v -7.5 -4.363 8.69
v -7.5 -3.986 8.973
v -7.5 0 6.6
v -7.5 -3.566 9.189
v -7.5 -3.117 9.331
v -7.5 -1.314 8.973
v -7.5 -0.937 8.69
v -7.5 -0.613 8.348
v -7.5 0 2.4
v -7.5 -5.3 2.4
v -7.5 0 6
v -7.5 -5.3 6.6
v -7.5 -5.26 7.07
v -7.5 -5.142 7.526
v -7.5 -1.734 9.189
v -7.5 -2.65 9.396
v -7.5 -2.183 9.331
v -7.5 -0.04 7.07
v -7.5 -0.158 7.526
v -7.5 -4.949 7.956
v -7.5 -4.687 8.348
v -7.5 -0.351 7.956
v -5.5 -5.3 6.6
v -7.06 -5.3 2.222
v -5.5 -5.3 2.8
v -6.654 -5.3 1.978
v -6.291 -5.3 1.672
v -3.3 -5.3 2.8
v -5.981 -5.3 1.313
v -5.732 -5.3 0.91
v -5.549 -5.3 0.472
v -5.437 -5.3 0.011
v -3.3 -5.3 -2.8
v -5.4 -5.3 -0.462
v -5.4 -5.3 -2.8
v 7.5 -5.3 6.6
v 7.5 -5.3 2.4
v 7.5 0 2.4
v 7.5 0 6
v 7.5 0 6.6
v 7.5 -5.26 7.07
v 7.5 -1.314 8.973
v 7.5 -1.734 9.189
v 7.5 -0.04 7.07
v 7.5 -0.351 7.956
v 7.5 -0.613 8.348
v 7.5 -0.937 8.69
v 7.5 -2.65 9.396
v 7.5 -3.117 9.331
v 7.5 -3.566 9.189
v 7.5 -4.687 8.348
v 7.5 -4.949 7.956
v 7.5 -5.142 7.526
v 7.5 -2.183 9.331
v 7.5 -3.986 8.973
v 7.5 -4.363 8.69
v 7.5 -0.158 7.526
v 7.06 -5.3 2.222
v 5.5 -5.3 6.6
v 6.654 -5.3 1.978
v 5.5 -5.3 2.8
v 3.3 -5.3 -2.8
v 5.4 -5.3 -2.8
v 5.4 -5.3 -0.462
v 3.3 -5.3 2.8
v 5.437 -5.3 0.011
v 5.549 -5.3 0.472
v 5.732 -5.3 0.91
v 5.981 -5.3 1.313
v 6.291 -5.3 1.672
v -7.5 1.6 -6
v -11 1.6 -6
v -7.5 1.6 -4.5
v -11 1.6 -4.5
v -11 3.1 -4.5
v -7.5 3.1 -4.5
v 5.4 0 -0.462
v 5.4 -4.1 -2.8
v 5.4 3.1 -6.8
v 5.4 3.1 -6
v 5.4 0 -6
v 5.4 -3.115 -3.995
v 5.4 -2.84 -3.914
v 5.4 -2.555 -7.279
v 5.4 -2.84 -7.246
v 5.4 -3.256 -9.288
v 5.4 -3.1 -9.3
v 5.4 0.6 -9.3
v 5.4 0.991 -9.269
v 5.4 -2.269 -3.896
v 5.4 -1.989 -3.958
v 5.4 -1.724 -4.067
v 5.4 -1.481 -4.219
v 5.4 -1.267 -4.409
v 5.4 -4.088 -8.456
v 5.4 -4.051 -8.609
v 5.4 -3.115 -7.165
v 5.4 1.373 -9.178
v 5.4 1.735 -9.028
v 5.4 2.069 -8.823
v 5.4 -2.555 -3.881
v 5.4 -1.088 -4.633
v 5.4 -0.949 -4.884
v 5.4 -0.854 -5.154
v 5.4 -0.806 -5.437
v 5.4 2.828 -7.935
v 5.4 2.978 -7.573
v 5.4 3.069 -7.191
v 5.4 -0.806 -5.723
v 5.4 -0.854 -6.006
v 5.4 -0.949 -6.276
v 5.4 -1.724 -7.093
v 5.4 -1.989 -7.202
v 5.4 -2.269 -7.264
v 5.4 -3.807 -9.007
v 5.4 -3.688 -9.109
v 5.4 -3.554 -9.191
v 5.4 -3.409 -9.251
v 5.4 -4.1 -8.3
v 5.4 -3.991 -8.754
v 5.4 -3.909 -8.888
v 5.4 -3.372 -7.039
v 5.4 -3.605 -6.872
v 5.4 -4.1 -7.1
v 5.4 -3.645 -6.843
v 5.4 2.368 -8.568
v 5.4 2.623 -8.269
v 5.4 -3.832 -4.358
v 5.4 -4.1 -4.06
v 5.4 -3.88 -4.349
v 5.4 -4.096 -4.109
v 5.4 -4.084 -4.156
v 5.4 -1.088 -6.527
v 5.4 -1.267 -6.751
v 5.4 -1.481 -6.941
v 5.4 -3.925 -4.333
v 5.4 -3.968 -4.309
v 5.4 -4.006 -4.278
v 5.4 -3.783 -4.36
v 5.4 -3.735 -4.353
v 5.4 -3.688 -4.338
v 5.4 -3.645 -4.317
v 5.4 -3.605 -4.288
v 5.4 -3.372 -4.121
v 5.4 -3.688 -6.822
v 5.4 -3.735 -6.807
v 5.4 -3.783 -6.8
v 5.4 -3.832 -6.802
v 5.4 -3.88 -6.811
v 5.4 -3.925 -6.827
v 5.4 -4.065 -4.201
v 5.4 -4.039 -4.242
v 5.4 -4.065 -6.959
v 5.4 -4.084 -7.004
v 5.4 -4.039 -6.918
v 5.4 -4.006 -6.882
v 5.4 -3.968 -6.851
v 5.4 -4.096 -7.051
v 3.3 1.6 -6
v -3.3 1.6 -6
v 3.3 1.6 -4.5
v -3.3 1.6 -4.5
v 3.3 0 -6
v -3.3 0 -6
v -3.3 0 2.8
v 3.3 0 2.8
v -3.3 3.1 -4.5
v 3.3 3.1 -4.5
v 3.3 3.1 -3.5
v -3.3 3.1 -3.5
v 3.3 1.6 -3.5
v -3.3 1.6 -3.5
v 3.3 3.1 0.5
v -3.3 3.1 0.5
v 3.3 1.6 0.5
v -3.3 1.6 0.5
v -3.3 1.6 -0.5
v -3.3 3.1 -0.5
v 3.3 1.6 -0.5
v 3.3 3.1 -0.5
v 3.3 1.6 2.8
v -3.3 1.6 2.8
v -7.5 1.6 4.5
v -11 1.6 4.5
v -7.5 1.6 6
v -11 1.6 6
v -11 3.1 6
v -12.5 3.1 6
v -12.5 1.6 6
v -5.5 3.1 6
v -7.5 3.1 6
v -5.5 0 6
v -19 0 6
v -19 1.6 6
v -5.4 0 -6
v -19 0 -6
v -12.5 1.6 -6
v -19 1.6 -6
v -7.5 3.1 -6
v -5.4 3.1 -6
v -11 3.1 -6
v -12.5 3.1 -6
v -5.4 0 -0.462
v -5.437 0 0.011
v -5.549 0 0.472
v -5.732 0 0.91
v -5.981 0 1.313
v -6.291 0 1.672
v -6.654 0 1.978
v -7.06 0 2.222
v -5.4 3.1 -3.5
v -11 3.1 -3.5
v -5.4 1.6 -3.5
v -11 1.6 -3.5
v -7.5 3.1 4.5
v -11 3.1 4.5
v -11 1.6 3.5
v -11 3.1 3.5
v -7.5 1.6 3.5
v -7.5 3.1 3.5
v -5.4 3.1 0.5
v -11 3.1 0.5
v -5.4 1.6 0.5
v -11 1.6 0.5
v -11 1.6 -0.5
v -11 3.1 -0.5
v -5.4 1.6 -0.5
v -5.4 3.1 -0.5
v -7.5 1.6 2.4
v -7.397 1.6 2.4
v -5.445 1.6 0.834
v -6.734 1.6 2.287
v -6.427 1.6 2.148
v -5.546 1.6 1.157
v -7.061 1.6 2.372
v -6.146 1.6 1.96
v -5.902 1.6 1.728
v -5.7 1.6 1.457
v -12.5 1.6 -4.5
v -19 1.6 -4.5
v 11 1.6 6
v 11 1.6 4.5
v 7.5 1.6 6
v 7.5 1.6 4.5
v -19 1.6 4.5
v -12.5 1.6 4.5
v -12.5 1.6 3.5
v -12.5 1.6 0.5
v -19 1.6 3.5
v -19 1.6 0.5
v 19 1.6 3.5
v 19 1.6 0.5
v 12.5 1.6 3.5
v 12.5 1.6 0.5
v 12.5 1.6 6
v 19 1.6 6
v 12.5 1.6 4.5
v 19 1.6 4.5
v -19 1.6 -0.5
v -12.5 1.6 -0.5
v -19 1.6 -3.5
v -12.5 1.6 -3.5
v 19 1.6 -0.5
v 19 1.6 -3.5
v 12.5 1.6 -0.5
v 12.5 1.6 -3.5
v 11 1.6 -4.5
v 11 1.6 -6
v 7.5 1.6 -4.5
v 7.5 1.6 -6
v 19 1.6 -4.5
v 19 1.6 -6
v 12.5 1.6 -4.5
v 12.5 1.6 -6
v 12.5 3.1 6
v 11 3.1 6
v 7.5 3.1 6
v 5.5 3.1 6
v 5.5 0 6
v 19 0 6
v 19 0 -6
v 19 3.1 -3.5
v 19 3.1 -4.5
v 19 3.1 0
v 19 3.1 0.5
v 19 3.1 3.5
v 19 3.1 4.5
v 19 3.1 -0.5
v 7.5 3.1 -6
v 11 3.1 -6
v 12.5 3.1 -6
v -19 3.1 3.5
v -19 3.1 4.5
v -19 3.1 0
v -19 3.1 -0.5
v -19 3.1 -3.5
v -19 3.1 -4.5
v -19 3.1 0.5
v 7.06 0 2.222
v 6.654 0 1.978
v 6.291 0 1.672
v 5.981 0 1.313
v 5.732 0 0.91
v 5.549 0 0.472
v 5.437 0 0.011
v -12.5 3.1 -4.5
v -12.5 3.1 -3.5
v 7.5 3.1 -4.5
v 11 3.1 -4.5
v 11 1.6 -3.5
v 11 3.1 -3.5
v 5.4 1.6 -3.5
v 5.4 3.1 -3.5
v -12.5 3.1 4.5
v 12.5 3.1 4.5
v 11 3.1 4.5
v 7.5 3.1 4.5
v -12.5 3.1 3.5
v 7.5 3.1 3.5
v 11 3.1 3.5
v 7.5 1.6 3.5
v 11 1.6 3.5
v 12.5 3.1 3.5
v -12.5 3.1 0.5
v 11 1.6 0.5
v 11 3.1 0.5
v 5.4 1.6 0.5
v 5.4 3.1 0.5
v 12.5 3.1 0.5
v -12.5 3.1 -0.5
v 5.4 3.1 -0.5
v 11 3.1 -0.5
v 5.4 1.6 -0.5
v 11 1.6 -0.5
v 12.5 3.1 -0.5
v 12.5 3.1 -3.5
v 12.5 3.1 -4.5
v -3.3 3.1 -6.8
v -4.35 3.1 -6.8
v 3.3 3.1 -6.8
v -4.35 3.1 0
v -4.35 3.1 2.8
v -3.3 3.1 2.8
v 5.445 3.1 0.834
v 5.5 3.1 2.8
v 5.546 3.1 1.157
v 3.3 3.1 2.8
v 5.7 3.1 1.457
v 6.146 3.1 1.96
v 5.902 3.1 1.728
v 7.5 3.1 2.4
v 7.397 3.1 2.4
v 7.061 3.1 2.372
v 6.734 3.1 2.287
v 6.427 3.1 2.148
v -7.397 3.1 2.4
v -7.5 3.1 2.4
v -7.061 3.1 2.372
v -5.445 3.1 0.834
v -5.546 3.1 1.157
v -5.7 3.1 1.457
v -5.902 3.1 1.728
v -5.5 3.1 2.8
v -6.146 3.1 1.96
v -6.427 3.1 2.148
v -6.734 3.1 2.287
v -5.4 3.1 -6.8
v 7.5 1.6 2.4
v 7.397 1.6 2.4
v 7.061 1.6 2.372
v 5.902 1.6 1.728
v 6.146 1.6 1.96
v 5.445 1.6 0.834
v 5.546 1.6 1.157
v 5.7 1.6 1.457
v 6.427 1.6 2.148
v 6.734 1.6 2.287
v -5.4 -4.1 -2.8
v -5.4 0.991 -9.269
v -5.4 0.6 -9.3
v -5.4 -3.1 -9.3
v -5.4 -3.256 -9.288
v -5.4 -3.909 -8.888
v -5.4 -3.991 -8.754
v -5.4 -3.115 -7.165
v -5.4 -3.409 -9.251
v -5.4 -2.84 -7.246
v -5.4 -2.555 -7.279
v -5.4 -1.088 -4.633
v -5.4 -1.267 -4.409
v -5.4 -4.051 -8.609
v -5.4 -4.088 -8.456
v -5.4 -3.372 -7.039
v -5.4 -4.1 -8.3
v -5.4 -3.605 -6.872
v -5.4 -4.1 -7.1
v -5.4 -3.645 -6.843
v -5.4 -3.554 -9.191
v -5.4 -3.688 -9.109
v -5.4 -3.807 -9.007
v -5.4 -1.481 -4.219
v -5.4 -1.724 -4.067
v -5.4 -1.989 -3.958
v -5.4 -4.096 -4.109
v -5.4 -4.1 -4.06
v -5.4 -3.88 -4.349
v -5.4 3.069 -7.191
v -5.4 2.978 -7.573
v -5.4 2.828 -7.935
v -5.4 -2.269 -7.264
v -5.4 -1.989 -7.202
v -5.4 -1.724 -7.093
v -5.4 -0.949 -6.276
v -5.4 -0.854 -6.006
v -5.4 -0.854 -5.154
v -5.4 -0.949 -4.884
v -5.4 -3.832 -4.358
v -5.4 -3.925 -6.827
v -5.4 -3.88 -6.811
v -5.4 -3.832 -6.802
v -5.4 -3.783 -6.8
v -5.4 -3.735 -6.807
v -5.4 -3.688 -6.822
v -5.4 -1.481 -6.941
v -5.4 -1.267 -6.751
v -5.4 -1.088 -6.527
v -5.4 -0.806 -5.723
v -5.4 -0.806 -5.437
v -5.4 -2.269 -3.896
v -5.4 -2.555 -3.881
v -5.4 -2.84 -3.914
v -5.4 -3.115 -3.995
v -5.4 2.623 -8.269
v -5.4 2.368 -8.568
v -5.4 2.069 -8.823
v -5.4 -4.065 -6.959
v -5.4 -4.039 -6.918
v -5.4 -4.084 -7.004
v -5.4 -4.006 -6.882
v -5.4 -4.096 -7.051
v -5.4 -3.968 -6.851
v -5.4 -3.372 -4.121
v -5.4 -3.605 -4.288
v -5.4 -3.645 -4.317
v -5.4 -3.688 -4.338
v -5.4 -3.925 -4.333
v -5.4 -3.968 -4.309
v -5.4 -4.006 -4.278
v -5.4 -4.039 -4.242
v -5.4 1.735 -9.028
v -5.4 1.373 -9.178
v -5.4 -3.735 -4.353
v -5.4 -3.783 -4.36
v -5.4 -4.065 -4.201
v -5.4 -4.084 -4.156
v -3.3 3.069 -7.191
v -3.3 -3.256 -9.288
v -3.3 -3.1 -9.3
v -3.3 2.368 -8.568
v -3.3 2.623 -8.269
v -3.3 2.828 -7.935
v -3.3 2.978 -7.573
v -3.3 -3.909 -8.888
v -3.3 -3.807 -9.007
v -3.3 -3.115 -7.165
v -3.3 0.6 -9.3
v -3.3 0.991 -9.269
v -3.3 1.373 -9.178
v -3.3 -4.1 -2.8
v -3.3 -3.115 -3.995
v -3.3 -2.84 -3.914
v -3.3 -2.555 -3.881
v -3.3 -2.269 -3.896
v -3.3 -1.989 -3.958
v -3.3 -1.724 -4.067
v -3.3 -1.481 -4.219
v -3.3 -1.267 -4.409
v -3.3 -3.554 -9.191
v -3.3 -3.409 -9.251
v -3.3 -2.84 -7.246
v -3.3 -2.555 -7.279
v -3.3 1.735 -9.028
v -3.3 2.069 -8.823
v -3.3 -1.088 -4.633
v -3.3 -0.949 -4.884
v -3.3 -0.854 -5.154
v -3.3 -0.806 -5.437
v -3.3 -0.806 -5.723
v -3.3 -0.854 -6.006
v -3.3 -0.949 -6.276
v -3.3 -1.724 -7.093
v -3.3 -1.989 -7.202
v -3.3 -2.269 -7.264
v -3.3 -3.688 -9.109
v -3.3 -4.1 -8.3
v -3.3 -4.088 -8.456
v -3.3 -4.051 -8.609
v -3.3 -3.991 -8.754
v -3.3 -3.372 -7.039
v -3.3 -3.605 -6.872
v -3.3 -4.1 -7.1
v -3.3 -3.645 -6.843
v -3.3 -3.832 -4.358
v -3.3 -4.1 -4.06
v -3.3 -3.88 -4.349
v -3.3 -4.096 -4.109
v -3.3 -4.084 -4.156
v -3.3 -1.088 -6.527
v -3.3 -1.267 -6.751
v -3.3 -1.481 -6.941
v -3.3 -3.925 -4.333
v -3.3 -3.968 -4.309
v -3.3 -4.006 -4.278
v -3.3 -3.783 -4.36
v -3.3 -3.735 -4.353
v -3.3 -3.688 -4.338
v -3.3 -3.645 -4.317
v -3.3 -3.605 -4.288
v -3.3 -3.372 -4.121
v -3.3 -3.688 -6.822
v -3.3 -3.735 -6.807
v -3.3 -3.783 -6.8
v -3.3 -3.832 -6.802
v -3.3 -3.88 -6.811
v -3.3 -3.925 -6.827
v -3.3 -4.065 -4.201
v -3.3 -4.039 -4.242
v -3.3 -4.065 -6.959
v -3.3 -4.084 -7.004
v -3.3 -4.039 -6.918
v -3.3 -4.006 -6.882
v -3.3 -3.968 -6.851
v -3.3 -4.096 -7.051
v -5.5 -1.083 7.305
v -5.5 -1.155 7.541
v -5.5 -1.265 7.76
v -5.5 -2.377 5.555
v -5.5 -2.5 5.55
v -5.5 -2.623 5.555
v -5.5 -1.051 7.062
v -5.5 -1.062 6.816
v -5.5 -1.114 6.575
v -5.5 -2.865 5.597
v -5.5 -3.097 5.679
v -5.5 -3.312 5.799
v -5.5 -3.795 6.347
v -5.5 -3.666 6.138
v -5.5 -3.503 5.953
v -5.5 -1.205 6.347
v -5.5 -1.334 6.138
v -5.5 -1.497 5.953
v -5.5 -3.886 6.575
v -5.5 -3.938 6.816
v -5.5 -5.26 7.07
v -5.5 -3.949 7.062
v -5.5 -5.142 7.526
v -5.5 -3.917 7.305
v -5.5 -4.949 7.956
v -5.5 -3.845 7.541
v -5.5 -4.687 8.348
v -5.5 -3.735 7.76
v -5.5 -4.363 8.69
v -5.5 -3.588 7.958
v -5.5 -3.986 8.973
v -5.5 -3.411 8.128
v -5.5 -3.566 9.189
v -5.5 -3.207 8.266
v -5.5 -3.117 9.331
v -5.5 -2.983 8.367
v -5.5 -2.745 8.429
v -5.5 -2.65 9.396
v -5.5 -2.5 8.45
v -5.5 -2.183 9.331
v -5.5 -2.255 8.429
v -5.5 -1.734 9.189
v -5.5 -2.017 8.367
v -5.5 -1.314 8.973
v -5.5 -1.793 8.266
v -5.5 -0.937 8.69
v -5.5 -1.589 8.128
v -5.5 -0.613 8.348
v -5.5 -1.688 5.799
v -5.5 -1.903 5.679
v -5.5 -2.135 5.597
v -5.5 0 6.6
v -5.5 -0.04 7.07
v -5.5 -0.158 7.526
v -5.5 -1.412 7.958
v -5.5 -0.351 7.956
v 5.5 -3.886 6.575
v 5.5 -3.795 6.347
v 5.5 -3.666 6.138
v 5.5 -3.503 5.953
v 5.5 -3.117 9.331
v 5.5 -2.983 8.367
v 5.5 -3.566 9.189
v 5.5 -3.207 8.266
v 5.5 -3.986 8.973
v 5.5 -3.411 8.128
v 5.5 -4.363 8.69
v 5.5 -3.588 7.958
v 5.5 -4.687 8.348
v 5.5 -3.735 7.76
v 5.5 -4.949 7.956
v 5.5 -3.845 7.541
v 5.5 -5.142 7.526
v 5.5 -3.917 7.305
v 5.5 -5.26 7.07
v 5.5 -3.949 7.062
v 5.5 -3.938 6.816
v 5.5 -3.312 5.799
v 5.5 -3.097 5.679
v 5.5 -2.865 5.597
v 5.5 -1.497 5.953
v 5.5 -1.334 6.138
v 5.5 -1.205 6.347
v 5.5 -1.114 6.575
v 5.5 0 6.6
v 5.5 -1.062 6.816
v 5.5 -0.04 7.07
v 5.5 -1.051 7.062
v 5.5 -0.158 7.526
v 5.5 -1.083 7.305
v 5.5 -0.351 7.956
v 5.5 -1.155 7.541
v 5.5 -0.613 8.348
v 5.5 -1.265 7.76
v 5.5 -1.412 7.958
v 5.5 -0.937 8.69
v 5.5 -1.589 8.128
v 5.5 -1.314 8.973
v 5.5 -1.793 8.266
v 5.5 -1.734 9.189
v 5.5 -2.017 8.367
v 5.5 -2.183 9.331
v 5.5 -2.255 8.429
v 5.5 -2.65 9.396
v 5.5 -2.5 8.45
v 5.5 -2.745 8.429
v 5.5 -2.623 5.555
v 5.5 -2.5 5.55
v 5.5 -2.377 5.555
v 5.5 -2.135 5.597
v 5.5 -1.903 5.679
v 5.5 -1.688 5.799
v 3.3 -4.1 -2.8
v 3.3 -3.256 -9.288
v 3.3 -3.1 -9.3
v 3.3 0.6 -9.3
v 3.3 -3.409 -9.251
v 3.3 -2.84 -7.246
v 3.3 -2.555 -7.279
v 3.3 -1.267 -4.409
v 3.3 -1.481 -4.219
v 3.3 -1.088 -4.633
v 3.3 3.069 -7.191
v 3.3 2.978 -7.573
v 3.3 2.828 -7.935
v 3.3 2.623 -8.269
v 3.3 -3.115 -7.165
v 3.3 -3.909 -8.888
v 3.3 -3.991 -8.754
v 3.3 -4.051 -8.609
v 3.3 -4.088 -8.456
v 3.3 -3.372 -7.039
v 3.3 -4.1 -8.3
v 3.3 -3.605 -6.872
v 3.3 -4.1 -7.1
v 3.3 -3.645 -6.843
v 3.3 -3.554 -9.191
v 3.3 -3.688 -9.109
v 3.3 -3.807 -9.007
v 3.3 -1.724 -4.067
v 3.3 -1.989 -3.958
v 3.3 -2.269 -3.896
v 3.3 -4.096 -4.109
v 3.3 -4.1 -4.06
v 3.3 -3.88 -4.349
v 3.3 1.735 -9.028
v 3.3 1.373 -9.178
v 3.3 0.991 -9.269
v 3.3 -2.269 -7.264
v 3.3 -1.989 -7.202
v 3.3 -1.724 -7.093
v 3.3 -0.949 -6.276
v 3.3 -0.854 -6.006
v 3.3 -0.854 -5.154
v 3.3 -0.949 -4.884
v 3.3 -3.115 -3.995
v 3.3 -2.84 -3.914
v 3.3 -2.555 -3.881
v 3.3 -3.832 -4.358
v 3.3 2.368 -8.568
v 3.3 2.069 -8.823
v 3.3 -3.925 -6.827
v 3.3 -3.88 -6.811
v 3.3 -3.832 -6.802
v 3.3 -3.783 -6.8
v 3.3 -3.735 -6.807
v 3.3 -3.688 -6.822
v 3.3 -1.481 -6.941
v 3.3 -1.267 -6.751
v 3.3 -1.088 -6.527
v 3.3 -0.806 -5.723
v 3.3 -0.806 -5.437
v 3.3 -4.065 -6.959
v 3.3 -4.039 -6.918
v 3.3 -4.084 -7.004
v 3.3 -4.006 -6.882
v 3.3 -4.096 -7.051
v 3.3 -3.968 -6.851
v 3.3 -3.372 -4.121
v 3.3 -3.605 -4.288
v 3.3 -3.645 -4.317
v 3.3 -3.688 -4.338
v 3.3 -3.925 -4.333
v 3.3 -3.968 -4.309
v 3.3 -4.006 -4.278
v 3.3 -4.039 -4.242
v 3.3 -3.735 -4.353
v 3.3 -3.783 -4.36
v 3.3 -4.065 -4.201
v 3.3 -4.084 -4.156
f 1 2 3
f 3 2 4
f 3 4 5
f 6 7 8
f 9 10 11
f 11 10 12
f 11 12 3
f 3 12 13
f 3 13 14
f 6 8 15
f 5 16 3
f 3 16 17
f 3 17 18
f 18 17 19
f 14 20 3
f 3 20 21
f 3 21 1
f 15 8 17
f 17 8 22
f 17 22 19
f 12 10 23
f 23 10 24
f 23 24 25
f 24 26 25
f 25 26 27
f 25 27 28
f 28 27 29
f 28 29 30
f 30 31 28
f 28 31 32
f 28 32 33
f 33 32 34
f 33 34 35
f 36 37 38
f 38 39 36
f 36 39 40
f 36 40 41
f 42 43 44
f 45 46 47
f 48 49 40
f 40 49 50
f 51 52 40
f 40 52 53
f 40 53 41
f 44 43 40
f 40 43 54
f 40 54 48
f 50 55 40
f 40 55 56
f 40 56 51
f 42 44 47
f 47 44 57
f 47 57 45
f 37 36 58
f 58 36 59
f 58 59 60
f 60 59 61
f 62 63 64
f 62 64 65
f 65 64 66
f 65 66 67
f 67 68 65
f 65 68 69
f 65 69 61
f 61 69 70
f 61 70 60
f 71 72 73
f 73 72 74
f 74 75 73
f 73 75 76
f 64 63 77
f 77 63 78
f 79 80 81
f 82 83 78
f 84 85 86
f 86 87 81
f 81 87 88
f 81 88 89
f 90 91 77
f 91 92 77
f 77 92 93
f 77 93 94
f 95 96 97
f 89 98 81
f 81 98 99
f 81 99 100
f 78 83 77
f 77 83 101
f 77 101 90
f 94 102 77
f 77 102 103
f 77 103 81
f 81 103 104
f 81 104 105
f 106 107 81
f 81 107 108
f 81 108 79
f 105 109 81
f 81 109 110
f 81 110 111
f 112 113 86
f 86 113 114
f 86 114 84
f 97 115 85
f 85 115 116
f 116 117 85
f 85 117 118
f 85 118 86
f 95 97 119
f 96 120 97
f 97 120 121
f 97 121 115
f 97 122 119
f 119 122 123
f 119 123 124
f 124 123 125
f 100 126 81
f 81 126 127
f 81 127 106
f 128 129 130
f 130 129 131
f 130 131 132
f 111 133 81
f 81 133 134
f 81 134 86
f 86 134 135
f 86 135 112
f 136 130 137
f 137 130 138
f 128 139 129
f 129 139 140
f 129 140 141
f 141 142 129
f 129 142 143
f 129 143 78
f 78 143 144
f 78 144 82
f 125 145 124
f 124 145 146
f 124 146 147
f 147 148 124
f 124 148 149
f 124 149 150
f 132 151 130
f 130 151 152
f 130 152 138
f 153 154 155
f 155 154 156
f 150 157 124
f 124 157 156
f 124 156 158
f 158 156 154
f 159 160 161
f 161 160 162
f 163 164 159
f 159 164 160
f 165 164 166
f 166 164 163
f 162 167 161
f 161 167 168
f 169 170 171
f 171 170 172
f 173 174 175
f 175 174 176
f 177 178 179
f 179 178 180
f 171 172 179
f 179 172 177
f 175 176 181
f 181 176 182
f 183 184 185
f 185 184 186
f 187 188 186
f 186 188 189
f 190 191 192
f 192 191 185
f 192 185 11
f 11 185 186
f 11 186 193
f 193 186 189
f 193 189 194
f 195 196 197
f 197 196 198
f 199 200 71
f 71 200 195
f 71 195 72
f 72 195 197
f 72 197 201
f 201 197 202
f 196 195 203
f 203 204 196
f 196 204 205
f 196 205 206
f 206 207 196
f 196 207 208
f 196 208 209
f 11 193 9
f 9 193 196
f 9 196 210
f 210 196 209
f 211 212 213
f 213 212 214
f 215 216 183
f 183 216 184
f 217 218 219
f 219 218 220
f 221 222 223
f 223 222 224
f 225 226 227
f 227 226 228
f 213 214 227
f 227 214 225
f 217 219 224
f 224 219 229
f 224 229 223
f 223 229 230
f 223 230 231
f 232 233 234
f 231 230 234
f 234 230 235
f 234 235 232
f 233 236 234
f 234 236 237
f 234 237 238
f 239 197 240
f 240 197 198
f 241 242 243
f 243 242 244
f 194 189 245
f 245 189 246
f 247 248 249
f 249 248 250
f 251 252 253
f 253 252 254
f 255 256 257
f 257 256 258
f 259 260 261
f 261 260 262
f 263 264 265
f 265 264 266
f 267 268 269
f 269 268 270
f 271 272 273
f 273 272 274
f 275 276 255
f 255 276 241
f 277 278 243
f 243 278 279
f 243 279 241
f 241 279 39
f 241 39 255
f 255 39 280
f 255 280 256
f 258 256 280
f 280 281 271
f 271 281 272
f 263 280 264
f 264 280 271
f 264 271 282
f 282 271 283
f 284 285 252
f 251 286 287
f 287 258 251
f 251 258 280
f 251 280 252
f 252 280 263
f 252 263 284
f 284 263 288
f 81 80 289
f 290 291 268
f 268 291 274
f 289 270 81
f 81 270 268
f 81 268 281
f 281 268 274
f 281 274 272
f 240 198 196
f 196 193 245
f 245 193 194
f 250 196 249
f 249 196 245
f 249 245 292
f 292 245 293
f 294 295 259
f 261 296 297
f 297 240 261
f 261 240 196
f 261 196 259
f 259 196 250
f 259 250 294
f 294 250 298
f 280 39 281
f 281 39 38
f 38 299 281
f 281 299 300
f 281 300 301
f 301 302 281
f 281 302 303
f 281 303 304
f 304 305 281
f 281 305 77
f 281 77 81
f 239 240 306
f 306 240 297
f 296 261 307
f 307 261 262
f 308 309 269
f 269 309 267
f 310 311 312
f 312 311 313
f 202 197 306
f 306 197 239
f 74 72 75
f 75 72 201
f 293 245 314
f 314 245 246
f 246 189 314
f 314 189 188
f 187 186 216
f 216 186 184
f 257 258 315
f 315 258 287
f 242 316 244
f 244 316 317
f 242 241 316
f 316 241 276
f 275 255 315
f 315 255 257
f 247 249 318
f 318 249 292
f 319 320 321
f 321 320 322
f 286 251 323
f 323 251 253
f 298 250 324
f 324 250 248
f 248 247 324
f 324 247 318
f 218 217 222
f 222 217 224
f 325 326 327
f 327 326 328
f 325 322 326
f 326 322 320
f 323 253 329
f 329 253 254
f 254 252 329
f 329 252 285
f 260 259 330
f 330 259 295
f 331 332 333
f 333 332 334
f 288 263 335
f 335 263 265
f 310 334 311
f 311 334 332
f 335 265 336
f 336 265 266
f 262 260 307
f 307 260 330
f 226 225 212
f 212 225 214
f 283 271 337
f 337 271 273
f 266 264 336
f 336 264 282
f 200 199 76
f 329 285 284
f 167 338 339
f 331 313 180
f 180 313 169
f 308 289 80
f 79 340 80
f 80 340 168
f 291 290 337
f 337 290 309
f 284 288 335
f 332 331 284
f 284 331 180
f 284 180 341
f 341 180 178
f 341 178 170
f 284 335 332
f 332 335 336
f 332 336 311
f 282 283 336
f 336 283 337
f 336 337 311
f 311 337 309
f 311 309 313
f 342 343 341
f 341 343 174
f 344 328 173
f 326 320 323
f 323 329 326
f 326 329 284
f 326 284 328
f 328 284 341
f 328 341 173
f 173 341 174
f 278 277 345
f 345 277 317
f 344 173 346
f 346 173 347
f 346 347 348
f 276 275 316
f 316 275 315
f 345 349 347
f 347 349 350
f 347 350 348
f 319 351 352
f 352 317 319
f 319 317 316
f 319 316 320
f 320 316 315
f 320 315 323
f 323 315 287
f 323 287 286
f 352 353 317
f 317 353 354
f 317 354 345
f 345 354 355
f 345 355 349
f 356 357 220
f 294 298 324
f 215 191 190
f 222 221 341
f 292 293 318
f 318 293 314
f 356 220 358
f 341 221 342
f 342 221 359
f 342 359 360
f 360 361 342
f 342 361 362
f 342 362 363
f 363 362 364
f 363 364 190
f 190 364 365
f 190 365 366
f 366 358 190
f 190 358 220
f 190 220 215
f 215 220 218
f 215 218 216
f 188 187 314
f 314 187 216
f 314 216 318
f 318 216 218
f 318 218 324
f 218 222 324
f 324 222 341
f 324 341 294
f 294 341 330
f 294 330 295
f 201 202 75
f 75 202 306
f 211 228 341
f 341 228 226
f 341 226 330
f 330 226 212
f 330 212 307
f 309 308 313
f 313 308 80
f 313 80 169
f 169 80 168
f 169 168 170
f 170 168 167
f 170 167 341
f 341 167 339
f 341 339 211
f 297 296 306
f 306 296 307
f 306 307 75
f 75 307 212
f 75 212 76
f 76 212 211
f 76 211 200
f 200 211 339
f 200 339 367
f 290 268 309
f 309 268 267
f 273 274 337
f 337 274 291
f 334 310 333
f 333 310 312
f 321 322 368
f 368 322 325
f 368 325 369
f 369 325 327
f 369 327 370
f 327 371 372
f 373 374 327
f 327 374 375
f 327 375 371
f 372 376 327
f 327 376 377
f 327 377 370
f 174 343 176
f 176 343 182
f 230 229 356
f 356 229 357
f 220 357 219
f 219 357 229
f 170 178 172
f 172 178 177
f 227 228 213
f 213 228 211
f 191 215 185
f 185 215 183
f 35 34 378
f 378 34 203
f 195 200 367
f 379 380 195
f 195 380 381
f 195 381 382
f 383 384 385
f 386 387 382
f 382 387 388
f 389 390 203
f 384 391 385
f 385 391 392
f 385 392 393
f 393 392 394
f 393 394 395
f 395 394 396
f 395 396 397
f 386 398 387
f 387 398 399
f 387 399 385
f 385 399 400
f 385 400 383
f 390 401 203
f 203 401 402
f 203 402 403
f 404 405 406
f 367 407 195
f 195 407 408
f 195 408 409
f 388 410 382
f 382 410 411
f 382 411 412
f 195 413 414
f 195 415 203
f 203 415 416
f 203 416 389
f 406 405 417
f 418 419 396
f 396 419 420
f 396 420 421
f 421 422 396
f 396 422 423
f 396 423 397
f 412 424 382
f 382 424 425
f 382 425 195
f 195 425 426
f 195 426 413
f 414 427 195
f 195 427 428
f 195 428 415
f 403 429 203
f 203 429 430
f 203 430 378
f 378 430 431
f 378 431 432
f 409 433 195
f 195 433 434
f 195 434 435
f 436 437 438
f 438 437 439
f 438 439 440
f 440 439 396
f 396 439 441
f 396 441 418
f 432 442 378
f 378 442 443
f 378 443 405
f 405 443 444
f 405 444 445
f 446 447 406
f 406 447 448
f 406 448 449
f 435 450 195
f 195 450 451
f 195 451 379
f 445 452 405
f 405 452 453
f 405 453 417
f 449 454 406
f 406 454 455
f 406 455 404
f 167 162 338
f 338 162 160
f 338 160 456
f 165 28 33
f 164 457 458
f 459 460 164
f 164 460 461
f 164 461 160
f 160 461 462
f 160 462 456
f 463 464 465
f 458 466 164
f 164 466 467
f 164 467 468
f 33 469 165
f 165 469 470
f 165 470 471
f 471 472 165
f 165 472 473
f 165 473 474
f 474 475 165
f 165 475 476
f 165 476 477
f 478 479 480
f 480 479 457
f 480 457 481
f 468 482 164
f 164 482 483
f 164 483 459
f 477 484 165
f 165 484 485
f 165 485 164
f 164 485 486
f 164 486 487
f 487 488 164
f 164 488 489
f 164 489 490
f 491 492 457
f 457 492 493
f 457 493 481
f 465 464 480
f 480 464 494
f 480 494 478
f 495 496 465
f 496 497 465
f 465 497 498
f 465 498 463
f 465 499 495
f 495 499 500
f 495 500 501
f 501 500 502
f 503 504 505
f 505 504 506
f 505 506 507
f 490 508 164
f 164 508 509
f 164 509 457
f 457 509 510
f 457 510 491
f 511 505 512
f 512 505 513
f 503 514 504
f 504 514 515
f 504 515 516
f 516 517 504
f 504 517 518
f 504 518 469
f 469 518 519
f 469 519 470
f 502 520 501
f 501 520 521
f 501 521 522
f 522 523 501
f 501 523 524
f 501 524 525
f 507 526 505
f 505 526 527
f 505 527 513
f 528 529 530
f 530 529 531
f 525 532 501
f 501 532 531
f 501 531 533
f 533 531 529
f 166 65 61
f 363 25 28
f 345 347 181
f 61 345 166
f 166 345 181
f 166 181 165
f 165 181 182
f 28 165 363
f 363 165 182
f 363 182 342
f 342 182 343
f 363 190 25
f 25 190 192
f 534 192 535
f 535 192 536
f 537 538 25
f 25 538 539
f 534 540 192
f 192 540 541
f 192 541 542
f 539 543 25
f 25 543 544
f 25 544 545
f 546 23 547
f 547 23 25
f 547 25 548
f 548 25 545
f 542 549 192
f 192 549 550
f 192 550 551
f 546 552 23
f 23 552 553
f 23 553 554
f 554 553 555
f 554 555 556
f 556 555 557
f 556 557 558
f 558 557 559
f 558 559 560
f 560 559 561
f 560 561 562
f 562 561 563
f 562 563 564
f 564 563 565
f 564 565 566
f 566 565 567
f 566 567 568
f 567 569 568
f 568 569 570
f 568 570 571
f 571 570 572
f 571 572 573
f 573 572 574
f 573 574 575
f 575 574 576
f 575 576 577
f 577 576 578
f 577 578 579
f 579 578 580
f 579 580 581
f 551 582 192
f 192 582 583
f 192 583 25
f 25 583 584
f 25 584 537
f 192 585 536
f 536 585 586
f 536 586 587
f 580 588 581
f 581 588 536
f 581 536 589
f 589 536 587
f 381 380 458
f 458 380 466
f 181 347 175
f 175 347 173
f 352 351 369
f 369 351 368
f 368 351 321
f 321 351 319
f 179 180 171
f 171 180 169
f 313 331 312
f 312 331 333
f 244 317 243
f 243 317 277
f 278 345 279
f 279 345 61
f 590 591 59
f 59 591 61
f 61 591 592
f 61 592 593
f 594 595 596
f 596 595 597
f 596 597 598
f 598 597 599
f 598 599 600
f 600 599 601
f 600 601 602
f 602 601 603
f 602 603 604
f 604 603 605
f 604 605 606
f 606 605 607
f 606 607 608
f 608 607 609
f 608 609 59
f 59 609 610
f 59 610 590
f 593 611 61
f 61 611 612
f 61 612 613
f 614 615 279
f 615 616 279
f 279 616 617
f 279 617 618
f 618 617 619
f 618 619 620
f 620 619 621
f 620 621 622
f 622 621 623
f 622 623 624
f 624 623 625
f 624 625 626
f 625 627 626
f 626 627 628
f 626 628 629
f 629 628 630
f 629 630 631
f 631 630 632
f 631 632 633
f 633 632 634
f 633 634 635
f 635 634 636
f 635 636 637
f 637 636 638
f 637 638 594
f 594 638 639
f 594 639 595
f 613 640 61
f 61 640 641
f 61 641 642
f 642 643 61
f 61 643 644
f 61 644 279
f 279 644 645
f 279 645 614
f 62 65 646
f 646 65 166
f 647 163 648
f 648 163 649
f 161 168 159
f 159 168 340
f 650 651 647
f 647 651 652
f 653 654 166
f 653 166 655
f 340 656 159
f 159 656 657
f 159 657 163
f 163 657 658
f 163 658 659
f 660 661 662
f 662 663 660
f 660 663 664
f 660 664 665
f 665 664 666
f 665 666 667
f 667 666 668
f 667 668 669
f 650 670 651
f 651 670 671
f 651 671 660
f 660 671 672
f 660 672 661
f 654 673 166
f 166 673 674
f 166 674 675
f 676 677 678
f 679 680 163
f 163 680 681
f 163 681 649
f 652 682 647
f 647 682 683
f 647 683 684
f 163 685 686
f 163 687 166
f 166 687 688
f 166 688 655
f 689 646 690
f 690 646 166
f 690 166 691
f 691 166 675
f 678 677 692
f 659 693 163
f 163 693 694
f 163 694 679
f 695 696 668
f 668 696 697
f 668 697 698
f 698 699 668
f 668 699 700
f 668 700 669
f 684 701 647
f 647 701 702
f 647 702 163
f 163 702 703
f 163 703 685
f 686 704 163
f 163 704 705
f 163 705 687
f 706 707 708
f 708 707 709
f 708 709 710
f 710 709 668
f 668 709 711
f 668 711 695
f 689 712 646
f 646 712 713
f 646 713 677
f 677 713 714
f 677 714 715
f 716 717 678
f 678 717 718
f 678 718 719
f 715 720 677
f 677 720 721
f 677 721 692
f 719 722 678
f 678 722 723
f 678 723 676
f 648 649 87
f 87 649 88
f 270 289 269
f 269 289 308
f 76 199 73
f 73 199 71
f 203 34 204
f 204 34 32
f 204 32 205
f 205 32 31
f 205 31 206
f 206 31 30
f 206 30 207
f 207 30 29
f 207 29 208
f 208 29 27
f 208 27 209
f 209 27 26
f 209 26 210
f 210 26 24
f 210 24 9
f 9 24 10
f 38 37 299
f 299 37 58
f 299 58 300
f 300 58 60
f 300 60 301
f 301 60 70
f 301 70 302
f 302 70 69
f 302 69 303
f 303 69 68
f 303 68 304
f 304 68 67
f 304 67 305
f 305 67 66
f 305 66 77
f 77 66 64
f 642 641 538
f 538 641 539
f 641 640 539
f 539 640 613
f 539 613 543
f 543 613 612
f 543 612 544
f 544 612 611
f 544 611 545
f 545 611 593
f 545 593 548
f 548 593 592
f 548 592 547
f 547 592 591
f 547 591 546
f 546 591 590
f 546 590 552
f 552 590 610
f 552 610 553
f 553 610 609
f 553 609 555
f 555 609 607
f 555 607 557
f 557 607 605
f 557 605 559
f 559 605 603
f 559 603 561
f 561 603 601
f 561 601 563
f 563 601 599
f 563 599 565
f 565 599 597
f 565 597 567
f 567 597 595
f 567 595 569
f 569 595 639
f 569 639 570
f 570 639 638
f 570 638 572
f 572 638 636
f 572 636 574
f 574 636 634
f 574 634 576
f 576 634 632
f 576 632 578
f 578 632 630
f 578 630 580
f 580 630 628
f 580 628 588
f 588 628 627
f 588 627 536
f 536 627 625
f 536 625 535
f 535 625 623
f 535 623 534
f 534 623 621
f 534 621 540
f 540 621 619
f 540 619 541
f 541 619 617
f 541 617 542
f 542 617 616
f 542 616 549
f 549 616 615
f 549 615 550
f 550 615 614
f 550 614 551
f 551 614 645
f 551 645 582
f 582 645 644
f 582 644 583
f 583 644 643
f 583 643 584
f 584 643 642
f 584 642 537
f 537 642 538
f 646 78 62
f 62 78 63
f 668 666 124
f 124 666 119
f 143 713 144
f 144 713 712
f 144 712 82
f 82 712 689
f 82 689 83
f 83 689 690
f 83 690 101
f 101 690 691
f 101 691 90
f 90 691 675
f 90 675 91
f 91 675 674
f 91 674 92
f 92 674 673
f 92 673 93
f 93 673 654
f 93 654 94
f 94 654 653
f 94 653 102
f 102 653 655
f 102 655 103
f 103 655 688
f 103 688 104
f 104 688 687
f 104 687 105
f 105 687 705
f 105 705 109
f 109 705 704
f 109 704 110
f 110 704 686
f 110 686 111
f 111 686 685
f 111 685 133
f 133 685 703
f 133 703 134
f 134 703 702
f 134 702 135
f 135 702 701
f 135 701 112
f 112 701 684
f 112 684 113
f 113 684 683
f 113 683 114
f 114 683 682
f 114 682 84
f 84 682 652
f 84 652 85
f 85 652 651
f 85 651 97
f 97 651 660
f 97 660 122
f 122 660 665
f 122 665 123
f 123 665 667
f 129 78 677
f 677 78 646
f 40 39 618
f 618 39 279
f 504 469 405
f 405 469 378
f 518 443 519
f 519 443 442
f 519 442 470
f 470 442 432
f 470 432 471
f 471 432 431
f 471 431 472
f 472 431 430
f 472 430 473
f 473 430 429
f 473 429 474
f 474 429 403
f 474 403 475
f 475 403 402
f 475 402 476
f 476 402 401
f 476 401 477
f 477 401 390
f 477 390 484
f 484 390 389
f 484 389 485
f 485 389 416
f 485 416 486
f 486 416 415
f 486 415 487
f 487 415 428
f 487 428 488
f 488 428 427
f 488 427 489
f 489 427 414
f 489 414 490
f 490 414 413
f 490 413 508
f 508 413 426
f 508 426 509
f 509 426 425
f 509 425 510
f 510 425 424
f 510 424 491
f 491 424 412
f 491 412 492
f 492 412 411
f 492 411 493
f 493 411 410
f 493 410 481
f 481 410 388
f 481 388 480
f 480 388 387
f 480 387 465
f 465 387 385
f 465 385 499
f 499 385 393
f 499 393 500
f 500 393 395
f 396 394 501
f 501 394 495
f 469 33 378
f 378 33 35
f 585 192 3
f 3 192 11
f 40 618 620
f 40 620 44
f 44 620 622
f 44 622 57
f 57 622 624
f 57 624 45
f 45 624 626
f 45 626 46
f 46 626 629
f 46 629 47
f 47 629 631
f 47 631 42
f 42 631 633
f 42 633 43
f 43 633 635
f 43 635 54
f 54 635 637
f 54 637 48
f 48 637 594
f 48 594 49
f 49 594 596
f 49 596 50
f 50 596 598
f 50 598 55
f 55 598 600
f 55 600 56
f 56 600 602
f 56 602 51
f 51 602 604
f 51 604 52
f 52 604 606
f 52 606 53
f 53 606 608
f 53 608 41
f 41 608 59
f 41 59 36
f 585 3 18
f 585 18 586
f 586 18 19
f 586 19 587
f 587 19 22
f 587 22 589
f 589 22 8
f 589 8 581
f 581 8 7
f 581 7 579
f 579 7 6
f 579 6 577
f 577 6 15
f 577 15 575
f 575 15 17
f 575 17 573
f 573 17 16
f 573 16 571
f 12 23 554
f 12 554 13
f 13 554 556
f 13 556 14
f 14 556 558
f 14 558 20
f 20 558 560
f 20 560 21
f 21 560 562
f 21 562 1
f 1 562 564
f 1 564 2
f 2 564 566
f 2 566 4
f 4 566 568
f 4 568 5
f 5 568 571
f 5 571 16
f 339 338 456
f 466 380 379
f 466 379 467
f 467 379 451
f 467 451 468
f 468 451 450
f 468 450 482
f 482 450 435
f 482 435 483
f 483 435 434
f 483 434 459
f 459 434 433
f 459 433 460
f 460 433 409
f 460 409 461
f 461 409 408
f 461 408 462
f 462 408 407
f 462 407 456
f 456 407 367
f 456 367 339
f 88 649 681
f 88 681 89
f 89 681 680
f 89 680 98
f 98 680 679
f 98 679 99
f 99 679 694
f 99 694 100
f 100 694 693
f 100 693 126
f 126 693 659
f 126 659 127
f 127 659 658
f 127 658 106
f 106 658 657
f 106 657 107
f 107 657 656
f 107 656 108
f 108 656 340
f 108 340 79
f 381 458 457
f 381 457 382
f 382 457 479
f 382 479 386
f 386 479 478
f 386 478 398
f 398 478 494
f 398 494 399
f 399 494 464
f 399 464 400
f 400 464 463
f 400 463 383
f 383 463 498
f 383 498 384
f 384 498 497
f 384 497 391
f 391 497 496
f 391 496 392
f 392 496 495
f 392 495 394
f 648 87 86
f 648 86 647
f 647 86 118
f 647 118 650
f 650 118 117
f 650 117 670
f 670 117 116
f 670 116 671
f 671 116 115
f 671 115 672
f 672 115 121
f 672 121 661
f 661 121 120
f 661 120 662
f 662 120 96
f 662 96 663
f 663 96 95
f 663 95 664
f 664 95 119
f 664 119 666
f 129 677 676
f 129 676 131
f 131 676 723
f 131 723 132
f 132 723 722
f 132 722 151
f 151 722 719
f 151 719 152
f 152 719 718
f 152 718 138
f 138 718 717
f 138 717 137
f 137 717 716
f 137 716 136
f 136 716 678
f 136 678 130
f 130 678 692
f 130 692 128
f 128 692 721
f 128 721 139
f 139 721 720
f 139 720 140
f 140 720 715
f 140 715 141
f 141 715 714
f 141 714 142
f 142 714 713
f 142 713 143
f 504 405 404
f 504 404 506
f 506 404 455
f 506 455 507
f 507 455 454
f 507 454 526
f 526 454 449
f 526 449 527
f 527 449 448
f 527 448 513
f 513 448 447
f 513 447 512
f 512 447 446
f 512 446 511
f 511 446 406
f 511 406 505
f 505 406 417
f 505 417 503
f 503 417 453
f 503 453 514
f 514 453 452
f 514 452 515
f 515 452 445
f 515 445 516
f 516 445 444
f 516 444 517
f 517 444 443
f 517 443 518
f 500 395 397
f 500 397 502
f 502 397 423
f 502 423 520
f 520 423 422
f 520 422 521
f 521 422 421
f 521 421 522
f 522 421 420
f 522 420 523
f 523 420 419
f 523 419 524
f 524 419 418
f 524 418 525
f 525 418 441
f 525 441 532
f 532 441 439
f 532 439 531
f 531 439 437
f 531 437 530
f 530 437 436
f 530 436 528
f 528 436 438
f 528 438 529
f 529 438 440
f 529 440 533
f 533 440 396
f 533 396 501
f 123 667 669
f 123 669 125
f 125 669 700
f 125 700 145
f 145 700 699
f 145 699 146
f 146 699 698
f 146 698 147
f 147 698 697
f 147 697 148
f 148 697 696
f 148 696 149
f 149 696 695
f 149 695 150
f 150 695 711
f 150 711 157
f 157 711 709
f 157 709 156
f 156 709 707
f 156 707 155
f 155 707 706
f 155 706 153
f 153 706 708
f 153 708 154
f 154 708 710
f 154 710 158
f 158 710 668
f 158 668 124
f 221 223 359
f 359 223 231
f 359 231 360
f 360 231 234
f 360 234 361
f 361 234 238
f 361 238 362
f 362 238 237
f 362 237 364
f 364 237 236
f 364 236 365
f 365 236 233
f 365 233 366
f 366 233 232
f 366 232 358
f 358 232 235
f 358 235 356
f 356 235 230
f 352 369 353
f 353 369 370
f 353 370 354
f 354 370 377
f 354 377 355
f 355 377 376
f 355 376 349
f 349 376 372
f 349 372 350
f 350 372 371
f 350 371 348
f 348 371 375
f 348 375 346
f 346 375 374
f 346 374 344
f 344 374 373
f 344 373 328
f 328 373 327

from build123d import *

# Parameters (mm, degrees)
SKETCH_1_W               = 38
SKETCH_1_H               = 12
EXTRUDE_1_DEPTH          = 1.6
EXTRUDE_START            = 1.6
SKETCH_1_3_W             = 38
SKETCH_1_3_H             = 1
SKETCH_1_3_W_2           = 1.5
SKETCH_1_3_H_2           = 12
EXTRUDE_2_DEPTH          = 1.5
EXTRUDE_START_2          = 3.1
EXTRUDE_3_DEPTH          = 8.4
SKETCH_2_4_W             = 2.1
SKETCH_2_4_H             = 1.5
EXTRUDE_5_DEPTH          = 3.1
CUT_EXTRUDE_1_DEPTH      = 22.850629282
FILLET_1_R               = 3
EXTRUDE_4_REACH          = 28.771
SKETCH_3_R               = 1.45
CUT_EXTRUDE_2_DEPTH      = 27.771253239
CUT_EXTRUDE_2_DEPTH_BACK = 27.771253239
SKETCH_3_3_R             = 1.7
SKETCH_3_3_W             = 6.5
SKETCH_3_3_H             = 1.2
SKETCH_3_3_W_2           = 3.4
SKETCH_3_3_H_2           = 3.1
FILLET_2_R               = 2.8
FILLET_3_R               = 2.5
FILLET_4_R               = 1
FILLET_5_R               = 0.3
FILLET_6_R               = 2


with BuildPart() as part:
    # 草图1 → 凸台-拉伸1 (new body)
    with BuildSketch(Plane(origin=(0, 0, 0), x_dir=(1, 0, 0), z_dir=(0, 1, 0))):
        Rectangle(SKETCH_1_W, SKETCH_1_H)
    extrude(amount=EXTRUDE_1_DEPTH)

    # 草图1<3> → 凸台-拉伸2 (add)
    with BuildSketch(Plane(origin=(0, 0, 0), x_dir=(1, 0, 0), z_dir=(0, 1, 0)).offset(EXTRUDE_START)):
        with Locations((0, 4)):
            Rectangle(SKETCH_1_3_W, SKETCH_1_3_H)
        Rectangle(SKETCH_1_3_W, SKETCH_1_3_H)
        with Locations((0, -4)):
            Rectangle(SKETCH_1_3_W, SKETCH_1_3_H)
        with Locations((-11.75, 0)):
            Rectangle(SKETCH_1_3_W_2, SKETCH_1_3_H_2)
        with Locations((11.75, 0)):
            Rectangle(SKETCH_1_3_W_2, SKETCH_1_3_H_2)
    extrude(amount=EXTRUDE_2_DEPTH)

    # 草图2 → 凸台-拉伸3 (add)
    with BuildSketch(Plane(origin=(0, 0, 0), x_dir=(1, 0, 0), z_dir=(0, 1, 0)).offset(EXTRUDE_START_2)):
        Polygon((-3.3, 9.3), (-5.4, 9.3), (-5.4, -2.4), (-7.5, -2.4), (-7.5, -9.4), (-5.5, -9.4), (-5.5, -2.8), (-3.3, -2.8), align=None)
        Polygon((5.4, 9.3), (3.3, 9.3), (3.3, -2.8), (5.5, -2.8), (5.5, -9.4), (7.5, -9.4), (7.5, -2.4), (5.4, -2.4), align=None)
    extrude(amount=-EXTRUDE_3_DEPTH)

    # 草图2<4> → 凸台-拉伸5 (add)
    with BuildSketch(Plane(origin=(0, 0, 0), x_dir=(1, 0, 0), z_dir=(0, 1, 0))):
        with Locations((-6.45, 5.25)):
            Rectangle(SKETCH_2_4_W, SKETCH_2_4_H)
        with Locations((6.45, 5.25)):
            Rectangle(SKETCH_2_4_W, SKETCH_2_4_H)
    extrude(amount=EXTRUDE_5_DEPTH)

    # 草图2<3> → 切除-拉伸1 (cut, through all)
    with BuildSketch(Plane(origin=(0, 0, 0), x_dir=(1, 0, 0), z_dir=(0, 1, 0))):
        Polygon((0, -9.4), (0, -2.8), (-3.3, -2.8), (-5.4, -2.8), (-5.5, -2.8), (-5.5, -9.4), align=None)
        Polygon((3.3, -2.8), (0, -2.8), (0, -9.4), (5.5, -9.4), (5.5, -2.8), (5.4, -2.8), align=None)
    extrude(amount=CUT_EXTRUDE_1_DEPTH, mode=Mode.SUBTRACT)

    # 圆角1
    # the kernel refuses this fillet: 3 mm, written as the material it adds along each edge
    with BuildSketch(Plane(origin=(5.4, 7.154544011, 2.4), x_dir=(1, 0, 0), z_dir=(0, -1, 0))) as fillet_1_piece_1_section:
        with BuildLine():
            CenterArc((3, -2.861817604), FILLET_1_R, 107.457603124, 72.542396876)
            Line((0, -2.861817604), (0, 0))
            Line((0, 0), (2.1, 0))
        make_face()
    fillet_1_piece_1 = extrude(amount=12.454544011, mode=Mode.PRIVATE)
    fillet_1_piece_1 = split(fillet_1_piece_1, bisect_by=Plane(origin=(6.297598678, 1.6, 1.686657362), z_dir=(0, -1, 0)), keep=Keep.TOP, mode=Mode.PRIVATE)
    add(fillet_1_piece_1)
    with BuildSketch(Plane(origin=(-5.4, 0, 2.4), x_dir=(0, 0, -1), z_dir=(0, -1, 0))) as fillet_1_piece_2:
        with BuildLine():
            CenterArc((2.861817604, -3), FILLET_1_R, 90, 72.542396876)
            Line((0, -2.1), (0, 0))
            Line((0, 0), (2.861817604, 0))
        make_face()
    extrude(amount=5.3)

    # 草图3 → 凸台-拉伸4 (add, up to next)
    with BuildSketch(Plane(origin=(-5.5, 0, 0), x_dir=(0, 0, -1), z_dir=(1, 0, 0)), mode=Mode.PRIVATE) as extrude_4_sk1:
        with Locations((-7, -2.5)):
            Circle(SKETCH_3_R)
    extrude_4_tool1 = extrude(extrude_4_sk1.sketch, amount=EXTRUDE_4_REACH, mode=Mode.PRIVATE) - part.part
    add(extrude_4_tool1.solids().sort_by_distance((-5.5, -2.5, 7))[0])

    # 草图3<3> → 切除-拉伸2 (cut, two sides: drawn at the far end of the back side and taken through both)
    with BuildSketch(Plane(origin=(-5.5, 0, 0), x_dir=(0, 0, -1), z_dir=(1, 0, 0)).offset(-CUT_EXTRUDE_2_DEPTH_BACK)):
        with Locations((5.58, -2.5)):
            Circle(SKETCH_3_3_R)
        with Locations((6.05, -4.7)):
            Rectangle(SKETCH_3_3_W, SKETCH_3_3_H)
        with Locations((-7.7, 1.55)):
            Rectangle(SKETCH_3_3_W_2, SKETCH_3_3_H_2)
    extrude(amount=CUT_EXTRUDE_2_DEPTH + CUT_EXTRUDE_2_DEPTH_BACK, mode=Mode.SUBTRACT)

    # 圆角2
    # the kernel refuses this fillet: 2.8 mm, written as the material it takes off along each edge
    with BuildSketch(Plane(origin=(-1.5, 0, 9.4), x_dir=(0, 0, -1), z_dir=(1, 0, 0)), Plane(origin=(-14.5, 0, 9.4), x_dir=(0, 0, -1), z_dir=(1, 0, 0))) as fillet_2_piece_1:
        with BuildLine():
            CenterArc((FILLET_2_R, -FILLET_2_R), FILLET_2_R, 90, 90)
            Line((0, -FILLET_2_R), (0, 0))
            Line((0, 0), (FILLET_2_R, 0))
        make_face()
    extrude(amount=16, mode=Mode.SUBTRACT)
    with BuildSketch(Plane(origin=(-1.5, -5.3, 9.4), x_dir=(0, 0, -1), z_dir=(1, 0, 0)), Plane(origin=(-14.5, -5.3, 9.4), x_dir=(0, 0, -1), z_dir=(1, 0, 0))) as fillet_2_piece_2:
        with BuildLine():
            CenterArc((FILLET_2_R, FILLET_2_R), FILLET_2_R, 180, 90)
            Line((0, FILLET_2_R), (0, 0))
            Line((0, 0), (FILLET_2_R, 0))
        make_face()
    extrude(amount=16, mode=Mode.SUBTRACT)

    # 圆角3
    fillet_3_edges = [part.edges().sort_by_distance(p)[0] for p in [
        (-4.35, 3.1, -9.3),
        (4.35, 3.1, -9.3),
    ]]
    fillet(fillet_3_edges, radius=FILLET_3_R)

    # 圆角4
    fillet_4_edges = [part.edges().sort_by_distance(p)[0] for p in [
        (-4.35, -4.1, -9.3),
        (4.35, -4.1, -9.3),
    ]]
    fillet(fillet_4_edges, radius=FILLET_4_R)

    # 圆角5
    fillet_5_edges = [part.edges().sort_by_distance(p)[0] for p in [
        (-4.35, -4.1, -5.005543735),
        (4.35, -4.1, -5.005543735),
        (-4.35, -4.1, -6.154456265),
        (4.35, -4.1, -6.154456265),
    ]]
    fillet(fillet_5_edges, radius=FILLET_5_R)

    # 圆角6
    # the kernel refuses this fillet: 2 mm, written as the material it adds along each edge
    with BuildSketch(Plane(origin=(5.4, 3.1, 2.4), x_dir=(0, 0, -1), z_dir=(0, -1, 0))) as fillet_6_piece_1:
        with BuildLine():
            CenterArc((2, 1.997498436), FILLET_6_R, 180, 87.134016017)
            Line((0, 1.997498436), (-0.04, 1.997498436))
            Line((-0.04, 1.997498436), (-0.04, 0))
            Line((-0.04, 0), (0, -0.04))
            ThreePointArc((0, -0.04), (0.95, -0.04), (1.898, -0.039949969))
            Line((1.898, -0.039949969), (1.9, 0))
        make_face()
    extrude(amount=6.493746089)
    with BuildSketch(Plane(origin=(-5.4, 3.1, 2.4), x_dir=(-1, 0, 0), z_dir=(0, -1, 0))) as fillet_6_piece_2:
        with BuildLine():
            CenterArc((1.997498436, 2), FILLET_6_R, 182.865983983, 87.134016017)
            Line((0, 1.9), (-0.039949969, 1.898))
            ThreePointArc((-0.039949969, 1.898), (-0.04, 0.95), (-0.04, 0))
            Line((-0.04, 0), (0, -0.04))
            Line((0, -0.04), (1.997498436, -0.04))
            Line((1.997498436, -0.04), (1.997498436, 0))
        make_face()
    extrude(amount=6.493746089)


solid = part.part
